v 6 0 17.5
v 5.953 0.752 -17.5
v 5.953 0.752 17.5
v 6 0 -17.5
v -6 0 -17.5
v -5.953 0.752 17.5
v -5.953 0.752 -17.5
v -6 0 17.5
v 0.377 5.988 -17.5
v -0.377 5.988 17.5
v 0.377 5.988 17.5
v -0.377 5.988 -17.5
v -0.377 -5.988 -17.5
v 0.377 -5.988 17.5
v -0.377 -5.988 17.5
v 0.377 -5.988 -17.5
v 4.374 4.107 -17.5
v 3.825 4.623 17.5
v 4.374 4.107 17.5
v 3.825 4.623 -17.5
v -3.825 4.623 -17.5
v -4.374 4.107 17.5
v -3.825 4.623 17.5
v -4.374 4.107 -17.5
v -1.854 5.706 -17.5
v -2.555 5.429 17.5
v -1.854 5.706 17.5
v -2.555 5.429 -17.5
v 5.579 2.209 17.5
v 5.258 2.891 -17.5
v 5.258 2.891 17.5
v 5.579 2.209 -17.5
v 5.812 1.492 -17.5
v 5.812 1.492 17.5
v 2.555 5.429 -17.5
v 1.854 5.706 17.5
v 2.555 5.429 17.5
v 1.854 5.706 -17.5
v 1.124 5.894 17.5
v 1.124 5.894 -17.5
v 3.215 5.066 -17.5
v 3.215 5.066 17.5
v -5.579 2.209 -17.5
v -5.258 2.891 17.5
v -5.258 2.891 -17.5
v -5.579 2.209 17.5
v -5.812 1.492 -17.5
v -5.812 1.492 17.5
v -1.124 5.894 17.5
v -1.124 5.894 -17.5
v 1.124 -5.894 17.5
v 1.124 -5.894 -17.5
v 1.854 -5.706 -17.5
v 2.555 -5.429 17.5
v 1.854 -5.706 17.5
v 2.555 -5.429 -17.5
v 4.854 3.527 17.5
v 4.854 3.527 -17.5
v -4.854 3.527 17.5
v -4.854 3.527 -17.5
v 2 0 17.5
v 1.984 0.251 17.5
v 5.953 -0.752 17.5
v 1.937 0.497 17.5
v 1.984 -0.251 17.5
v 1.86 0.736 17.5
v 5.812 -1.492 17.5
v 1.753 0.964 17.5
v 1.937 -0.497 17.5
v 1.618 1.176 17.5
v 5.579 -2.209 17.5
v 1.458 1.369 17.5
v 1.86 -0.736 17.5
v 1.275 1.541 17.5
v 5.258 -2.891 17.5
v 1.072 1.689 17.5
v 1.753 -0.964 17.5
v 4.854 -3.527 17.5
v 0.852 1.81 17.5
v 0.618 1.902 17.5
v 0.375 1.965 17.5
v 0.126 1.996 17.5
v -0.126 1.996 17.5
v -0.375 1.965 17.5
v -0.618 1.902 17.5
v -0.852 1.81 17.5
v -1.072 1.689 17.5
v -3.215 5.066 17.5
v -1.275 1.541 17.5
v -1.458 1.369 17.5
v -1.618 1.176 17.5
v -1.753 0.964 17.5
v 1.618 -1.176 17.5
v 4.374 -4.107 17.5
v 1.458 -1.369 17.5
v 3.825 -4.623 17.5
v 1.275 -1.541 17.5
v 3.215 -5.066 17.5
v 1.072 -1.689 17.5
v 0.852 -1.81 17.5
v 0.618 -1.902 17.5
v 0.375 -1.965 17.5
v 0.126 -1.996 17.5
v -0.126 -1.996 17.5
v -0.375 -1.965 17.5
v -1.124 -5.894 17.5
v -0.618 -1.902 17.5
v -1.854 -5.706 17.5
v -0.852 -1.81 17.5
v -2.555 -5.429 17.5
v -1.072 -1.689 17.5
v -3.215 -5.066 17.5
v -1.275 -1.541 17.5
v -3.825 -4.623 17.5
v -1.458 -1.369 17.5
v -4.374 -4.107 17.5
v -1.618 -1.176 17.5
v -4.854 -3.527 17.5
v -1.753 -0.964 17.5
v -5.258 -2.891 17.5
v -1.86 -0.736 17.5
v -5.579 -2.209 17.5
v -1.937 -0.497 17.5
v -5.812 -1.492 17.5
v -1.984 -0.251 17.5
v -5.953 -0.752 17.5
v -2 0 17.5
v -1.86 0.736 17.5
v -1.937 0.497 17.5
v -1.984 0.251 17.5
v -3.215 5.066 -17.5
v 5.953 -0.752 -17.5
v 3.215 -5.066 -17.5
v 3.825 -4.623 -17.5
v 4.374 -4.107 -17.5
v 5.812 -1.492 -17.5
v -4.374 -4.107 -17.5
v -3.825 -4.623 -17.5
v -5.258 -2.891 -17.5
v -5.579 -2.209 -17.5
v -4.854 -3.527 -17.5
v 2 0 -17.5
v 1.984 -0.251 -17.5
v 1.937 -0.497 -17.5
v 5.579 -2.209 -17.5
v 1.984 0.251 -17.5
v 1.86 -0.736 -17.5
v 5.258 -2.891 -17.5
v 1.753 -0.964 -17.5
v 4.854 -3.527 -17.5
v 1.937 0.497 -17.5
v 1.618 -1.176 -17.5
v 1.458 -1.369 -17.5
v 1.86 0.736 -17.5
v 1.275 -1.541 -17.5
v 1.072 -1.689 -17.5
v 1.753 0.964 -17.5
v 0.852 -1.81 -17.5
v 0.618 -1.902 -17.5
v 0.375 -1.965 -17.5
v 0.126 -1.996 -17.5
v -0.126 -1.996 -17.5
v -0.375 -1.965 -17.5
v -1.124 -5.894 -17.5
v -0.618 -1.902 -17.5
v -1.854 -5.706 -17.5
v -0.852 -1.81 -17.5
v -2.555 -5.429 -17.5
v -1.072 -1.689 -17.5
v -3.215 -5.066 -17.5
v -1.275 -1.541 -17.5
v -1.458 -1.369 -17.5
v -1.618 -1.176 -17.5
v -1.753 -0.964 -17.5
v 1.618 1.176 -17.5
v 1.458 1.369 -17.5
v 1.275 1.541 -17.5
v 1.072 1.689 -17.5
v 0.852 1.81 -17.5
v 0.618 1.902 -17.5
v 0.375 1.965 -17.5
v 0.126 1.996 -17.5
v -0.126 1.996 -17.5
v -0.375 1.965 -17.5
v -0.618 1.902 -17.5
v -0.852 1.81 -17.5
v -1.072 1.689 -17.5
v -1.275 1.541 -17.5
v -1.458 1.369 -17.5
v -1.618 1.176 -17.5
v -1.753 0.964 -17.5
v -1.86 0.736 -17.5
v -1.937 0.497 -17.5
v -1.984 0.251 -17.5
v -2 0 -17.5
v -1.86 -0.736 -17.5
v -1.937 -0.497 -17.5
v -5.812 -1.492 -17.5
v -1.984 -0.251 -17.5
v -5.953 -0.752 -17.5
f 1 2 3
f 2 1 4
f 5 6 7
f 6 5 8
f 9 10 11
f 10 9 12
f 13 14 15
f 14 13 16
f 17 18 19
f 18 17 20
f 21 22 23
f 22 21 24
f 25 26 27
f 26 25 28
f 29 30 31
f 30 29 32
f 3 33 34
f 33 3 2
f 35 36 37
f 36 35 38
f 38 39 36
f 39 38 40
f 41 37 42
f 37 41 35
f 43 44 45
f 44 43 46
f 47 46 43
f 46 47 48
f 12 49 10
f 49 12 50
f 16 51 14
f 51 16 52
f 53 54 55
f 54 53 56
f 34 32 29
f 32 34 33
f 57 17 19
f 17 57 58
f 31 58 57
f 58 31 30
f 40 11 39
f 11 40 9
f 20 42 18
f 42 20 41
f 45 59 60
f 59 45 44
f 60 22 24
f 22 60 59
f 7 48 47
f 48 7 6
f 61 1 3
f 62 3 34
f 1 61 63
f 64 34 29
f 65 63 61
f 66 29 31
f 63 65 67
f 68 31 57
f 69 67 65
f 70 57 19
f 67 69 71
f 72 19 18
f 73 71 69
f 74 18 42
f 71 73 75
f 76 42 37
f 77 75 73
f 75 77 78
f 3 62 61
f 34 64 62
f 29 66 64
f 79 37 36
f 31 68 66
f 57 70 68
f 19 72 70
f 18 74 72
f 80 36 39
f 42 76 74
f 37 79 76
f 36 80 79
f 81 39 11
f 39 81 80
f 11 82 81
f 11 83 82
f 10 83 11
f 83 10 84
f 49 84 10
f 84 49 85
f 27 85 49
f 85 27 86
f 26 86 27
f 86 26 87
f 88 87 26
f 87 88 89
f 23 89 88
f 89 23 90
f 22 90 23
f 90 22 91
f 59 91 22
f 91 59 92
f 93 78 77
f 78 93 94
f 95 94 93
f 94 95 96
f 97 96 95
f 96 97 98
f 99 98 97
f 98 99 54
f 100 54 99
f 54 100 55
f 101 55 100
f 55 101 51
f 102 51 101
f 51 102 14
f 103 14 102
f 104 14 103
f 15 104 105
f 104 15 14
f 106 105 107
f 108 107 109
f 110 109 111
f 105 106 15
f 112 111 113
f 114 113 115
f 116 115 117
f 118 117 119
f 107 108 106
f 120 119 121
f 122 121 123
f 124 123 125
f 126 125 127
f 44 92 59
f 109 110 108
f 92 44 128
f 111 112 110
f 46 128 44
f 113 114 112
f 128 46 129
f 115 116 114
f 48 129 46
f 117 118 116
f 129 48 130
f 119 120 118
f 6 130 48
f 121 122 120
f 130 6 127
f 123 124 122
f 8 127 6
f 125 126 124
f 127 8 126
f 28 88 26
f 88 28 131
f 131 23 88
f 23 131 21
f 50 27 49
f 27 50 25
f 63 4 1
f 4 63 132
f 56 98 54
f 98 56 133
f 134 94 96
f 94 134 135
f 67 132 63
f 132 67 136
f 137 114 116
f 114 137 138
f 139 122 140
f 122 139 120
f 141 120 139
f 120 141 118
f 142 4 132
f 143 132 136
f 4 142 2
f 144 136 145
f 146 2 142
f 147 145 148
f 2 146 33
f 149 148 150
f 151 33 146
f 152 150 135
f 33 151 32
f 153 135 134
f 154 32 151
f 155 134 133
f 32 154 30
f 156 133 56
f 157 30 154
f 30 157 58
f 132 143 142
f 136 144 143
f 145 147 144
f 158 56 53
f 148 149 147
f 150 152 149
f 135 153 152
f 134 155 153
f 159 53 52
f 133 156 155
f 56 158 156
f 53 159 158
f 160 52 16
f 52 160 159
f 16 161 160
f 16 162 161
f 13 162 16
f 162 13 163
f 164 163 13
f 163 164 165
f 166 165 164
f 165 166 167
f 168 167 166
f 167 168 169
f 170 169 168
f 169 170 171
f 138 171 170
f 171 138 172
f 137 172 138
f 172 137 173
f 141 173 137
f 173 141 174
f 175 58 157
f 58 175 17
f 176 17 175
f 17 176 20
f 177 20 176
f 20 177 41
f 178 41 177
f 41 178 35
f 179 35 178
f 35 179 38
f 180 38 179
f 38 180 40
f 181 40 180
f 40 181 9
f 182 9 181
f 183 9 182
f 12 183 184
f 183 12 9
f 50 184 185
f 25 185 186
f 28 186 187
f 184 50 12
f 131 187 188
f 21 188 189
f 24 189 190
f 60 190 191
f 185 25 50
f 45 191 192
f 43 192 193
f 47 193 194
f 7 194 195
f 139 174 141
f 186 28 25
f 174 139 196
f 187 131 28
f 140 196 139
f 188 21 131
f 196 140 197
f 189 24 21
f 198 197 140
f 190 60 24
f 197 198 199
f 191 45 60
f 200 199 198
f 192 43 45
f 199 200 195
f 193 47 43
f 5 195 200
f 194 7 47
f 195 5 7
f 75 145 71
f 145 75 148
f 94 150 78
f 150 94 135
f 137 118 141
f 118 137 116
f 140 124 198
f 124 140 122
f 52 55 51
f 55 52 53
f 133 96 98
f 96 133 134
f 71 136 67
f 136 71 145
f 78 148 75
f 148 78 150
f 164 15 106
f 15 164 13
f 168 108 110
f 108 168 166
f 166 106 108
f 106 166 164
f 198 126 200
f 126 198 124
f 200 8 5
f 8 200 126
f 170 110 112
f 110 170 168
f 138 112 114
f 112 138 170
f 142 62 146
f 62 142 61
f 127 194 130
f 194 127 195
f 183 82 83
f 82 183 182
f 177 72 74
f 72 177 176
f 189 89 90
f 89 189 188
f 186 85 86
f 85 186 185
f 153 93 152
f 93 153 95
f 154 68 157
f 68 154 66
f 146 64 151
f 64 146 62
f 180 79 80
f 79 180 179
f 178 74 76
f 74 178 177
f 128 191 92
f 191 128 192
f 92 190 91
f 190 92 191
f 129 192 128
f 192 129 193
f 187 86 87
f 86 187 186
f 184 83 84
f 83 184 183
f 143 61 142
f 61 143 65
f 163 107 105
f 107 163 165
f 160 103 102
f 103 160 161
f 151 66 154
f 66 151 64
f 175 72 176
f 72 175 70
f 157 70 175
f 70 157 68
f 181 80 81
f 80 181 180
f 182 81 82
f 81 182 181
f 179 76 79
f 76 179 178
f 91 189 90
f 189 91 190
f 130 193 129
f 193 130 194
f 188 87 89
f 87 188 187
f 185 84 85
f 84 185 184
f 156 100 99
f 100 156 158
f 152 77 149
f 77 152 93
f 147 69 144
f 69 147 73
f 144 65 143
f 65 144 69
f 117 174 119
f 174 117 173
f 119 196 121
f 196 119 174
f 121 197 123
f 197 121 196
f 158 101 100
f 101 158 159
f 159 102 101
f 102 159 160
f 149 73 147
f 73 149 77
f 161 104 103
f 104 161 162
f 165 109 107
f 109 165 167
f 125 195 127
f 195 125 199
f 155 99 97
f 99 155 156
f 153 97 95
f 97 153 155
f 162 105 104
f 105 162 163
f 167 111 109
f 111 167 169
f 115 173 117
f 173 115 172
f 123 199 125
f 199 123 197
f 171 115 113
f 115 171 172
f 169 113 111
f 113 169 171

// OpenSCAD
$fn = 50;


difference() {
	union() {
		translate(v = [0, 0, -17.5000000000]) {
			cylinder(h = 35, r = 6.0000000000);
		}
	}
	union() {
		translate(v = [0, 0, -100.0000000000]) {
			cylinder(h = 200, r = 2);
		}
	}
}
